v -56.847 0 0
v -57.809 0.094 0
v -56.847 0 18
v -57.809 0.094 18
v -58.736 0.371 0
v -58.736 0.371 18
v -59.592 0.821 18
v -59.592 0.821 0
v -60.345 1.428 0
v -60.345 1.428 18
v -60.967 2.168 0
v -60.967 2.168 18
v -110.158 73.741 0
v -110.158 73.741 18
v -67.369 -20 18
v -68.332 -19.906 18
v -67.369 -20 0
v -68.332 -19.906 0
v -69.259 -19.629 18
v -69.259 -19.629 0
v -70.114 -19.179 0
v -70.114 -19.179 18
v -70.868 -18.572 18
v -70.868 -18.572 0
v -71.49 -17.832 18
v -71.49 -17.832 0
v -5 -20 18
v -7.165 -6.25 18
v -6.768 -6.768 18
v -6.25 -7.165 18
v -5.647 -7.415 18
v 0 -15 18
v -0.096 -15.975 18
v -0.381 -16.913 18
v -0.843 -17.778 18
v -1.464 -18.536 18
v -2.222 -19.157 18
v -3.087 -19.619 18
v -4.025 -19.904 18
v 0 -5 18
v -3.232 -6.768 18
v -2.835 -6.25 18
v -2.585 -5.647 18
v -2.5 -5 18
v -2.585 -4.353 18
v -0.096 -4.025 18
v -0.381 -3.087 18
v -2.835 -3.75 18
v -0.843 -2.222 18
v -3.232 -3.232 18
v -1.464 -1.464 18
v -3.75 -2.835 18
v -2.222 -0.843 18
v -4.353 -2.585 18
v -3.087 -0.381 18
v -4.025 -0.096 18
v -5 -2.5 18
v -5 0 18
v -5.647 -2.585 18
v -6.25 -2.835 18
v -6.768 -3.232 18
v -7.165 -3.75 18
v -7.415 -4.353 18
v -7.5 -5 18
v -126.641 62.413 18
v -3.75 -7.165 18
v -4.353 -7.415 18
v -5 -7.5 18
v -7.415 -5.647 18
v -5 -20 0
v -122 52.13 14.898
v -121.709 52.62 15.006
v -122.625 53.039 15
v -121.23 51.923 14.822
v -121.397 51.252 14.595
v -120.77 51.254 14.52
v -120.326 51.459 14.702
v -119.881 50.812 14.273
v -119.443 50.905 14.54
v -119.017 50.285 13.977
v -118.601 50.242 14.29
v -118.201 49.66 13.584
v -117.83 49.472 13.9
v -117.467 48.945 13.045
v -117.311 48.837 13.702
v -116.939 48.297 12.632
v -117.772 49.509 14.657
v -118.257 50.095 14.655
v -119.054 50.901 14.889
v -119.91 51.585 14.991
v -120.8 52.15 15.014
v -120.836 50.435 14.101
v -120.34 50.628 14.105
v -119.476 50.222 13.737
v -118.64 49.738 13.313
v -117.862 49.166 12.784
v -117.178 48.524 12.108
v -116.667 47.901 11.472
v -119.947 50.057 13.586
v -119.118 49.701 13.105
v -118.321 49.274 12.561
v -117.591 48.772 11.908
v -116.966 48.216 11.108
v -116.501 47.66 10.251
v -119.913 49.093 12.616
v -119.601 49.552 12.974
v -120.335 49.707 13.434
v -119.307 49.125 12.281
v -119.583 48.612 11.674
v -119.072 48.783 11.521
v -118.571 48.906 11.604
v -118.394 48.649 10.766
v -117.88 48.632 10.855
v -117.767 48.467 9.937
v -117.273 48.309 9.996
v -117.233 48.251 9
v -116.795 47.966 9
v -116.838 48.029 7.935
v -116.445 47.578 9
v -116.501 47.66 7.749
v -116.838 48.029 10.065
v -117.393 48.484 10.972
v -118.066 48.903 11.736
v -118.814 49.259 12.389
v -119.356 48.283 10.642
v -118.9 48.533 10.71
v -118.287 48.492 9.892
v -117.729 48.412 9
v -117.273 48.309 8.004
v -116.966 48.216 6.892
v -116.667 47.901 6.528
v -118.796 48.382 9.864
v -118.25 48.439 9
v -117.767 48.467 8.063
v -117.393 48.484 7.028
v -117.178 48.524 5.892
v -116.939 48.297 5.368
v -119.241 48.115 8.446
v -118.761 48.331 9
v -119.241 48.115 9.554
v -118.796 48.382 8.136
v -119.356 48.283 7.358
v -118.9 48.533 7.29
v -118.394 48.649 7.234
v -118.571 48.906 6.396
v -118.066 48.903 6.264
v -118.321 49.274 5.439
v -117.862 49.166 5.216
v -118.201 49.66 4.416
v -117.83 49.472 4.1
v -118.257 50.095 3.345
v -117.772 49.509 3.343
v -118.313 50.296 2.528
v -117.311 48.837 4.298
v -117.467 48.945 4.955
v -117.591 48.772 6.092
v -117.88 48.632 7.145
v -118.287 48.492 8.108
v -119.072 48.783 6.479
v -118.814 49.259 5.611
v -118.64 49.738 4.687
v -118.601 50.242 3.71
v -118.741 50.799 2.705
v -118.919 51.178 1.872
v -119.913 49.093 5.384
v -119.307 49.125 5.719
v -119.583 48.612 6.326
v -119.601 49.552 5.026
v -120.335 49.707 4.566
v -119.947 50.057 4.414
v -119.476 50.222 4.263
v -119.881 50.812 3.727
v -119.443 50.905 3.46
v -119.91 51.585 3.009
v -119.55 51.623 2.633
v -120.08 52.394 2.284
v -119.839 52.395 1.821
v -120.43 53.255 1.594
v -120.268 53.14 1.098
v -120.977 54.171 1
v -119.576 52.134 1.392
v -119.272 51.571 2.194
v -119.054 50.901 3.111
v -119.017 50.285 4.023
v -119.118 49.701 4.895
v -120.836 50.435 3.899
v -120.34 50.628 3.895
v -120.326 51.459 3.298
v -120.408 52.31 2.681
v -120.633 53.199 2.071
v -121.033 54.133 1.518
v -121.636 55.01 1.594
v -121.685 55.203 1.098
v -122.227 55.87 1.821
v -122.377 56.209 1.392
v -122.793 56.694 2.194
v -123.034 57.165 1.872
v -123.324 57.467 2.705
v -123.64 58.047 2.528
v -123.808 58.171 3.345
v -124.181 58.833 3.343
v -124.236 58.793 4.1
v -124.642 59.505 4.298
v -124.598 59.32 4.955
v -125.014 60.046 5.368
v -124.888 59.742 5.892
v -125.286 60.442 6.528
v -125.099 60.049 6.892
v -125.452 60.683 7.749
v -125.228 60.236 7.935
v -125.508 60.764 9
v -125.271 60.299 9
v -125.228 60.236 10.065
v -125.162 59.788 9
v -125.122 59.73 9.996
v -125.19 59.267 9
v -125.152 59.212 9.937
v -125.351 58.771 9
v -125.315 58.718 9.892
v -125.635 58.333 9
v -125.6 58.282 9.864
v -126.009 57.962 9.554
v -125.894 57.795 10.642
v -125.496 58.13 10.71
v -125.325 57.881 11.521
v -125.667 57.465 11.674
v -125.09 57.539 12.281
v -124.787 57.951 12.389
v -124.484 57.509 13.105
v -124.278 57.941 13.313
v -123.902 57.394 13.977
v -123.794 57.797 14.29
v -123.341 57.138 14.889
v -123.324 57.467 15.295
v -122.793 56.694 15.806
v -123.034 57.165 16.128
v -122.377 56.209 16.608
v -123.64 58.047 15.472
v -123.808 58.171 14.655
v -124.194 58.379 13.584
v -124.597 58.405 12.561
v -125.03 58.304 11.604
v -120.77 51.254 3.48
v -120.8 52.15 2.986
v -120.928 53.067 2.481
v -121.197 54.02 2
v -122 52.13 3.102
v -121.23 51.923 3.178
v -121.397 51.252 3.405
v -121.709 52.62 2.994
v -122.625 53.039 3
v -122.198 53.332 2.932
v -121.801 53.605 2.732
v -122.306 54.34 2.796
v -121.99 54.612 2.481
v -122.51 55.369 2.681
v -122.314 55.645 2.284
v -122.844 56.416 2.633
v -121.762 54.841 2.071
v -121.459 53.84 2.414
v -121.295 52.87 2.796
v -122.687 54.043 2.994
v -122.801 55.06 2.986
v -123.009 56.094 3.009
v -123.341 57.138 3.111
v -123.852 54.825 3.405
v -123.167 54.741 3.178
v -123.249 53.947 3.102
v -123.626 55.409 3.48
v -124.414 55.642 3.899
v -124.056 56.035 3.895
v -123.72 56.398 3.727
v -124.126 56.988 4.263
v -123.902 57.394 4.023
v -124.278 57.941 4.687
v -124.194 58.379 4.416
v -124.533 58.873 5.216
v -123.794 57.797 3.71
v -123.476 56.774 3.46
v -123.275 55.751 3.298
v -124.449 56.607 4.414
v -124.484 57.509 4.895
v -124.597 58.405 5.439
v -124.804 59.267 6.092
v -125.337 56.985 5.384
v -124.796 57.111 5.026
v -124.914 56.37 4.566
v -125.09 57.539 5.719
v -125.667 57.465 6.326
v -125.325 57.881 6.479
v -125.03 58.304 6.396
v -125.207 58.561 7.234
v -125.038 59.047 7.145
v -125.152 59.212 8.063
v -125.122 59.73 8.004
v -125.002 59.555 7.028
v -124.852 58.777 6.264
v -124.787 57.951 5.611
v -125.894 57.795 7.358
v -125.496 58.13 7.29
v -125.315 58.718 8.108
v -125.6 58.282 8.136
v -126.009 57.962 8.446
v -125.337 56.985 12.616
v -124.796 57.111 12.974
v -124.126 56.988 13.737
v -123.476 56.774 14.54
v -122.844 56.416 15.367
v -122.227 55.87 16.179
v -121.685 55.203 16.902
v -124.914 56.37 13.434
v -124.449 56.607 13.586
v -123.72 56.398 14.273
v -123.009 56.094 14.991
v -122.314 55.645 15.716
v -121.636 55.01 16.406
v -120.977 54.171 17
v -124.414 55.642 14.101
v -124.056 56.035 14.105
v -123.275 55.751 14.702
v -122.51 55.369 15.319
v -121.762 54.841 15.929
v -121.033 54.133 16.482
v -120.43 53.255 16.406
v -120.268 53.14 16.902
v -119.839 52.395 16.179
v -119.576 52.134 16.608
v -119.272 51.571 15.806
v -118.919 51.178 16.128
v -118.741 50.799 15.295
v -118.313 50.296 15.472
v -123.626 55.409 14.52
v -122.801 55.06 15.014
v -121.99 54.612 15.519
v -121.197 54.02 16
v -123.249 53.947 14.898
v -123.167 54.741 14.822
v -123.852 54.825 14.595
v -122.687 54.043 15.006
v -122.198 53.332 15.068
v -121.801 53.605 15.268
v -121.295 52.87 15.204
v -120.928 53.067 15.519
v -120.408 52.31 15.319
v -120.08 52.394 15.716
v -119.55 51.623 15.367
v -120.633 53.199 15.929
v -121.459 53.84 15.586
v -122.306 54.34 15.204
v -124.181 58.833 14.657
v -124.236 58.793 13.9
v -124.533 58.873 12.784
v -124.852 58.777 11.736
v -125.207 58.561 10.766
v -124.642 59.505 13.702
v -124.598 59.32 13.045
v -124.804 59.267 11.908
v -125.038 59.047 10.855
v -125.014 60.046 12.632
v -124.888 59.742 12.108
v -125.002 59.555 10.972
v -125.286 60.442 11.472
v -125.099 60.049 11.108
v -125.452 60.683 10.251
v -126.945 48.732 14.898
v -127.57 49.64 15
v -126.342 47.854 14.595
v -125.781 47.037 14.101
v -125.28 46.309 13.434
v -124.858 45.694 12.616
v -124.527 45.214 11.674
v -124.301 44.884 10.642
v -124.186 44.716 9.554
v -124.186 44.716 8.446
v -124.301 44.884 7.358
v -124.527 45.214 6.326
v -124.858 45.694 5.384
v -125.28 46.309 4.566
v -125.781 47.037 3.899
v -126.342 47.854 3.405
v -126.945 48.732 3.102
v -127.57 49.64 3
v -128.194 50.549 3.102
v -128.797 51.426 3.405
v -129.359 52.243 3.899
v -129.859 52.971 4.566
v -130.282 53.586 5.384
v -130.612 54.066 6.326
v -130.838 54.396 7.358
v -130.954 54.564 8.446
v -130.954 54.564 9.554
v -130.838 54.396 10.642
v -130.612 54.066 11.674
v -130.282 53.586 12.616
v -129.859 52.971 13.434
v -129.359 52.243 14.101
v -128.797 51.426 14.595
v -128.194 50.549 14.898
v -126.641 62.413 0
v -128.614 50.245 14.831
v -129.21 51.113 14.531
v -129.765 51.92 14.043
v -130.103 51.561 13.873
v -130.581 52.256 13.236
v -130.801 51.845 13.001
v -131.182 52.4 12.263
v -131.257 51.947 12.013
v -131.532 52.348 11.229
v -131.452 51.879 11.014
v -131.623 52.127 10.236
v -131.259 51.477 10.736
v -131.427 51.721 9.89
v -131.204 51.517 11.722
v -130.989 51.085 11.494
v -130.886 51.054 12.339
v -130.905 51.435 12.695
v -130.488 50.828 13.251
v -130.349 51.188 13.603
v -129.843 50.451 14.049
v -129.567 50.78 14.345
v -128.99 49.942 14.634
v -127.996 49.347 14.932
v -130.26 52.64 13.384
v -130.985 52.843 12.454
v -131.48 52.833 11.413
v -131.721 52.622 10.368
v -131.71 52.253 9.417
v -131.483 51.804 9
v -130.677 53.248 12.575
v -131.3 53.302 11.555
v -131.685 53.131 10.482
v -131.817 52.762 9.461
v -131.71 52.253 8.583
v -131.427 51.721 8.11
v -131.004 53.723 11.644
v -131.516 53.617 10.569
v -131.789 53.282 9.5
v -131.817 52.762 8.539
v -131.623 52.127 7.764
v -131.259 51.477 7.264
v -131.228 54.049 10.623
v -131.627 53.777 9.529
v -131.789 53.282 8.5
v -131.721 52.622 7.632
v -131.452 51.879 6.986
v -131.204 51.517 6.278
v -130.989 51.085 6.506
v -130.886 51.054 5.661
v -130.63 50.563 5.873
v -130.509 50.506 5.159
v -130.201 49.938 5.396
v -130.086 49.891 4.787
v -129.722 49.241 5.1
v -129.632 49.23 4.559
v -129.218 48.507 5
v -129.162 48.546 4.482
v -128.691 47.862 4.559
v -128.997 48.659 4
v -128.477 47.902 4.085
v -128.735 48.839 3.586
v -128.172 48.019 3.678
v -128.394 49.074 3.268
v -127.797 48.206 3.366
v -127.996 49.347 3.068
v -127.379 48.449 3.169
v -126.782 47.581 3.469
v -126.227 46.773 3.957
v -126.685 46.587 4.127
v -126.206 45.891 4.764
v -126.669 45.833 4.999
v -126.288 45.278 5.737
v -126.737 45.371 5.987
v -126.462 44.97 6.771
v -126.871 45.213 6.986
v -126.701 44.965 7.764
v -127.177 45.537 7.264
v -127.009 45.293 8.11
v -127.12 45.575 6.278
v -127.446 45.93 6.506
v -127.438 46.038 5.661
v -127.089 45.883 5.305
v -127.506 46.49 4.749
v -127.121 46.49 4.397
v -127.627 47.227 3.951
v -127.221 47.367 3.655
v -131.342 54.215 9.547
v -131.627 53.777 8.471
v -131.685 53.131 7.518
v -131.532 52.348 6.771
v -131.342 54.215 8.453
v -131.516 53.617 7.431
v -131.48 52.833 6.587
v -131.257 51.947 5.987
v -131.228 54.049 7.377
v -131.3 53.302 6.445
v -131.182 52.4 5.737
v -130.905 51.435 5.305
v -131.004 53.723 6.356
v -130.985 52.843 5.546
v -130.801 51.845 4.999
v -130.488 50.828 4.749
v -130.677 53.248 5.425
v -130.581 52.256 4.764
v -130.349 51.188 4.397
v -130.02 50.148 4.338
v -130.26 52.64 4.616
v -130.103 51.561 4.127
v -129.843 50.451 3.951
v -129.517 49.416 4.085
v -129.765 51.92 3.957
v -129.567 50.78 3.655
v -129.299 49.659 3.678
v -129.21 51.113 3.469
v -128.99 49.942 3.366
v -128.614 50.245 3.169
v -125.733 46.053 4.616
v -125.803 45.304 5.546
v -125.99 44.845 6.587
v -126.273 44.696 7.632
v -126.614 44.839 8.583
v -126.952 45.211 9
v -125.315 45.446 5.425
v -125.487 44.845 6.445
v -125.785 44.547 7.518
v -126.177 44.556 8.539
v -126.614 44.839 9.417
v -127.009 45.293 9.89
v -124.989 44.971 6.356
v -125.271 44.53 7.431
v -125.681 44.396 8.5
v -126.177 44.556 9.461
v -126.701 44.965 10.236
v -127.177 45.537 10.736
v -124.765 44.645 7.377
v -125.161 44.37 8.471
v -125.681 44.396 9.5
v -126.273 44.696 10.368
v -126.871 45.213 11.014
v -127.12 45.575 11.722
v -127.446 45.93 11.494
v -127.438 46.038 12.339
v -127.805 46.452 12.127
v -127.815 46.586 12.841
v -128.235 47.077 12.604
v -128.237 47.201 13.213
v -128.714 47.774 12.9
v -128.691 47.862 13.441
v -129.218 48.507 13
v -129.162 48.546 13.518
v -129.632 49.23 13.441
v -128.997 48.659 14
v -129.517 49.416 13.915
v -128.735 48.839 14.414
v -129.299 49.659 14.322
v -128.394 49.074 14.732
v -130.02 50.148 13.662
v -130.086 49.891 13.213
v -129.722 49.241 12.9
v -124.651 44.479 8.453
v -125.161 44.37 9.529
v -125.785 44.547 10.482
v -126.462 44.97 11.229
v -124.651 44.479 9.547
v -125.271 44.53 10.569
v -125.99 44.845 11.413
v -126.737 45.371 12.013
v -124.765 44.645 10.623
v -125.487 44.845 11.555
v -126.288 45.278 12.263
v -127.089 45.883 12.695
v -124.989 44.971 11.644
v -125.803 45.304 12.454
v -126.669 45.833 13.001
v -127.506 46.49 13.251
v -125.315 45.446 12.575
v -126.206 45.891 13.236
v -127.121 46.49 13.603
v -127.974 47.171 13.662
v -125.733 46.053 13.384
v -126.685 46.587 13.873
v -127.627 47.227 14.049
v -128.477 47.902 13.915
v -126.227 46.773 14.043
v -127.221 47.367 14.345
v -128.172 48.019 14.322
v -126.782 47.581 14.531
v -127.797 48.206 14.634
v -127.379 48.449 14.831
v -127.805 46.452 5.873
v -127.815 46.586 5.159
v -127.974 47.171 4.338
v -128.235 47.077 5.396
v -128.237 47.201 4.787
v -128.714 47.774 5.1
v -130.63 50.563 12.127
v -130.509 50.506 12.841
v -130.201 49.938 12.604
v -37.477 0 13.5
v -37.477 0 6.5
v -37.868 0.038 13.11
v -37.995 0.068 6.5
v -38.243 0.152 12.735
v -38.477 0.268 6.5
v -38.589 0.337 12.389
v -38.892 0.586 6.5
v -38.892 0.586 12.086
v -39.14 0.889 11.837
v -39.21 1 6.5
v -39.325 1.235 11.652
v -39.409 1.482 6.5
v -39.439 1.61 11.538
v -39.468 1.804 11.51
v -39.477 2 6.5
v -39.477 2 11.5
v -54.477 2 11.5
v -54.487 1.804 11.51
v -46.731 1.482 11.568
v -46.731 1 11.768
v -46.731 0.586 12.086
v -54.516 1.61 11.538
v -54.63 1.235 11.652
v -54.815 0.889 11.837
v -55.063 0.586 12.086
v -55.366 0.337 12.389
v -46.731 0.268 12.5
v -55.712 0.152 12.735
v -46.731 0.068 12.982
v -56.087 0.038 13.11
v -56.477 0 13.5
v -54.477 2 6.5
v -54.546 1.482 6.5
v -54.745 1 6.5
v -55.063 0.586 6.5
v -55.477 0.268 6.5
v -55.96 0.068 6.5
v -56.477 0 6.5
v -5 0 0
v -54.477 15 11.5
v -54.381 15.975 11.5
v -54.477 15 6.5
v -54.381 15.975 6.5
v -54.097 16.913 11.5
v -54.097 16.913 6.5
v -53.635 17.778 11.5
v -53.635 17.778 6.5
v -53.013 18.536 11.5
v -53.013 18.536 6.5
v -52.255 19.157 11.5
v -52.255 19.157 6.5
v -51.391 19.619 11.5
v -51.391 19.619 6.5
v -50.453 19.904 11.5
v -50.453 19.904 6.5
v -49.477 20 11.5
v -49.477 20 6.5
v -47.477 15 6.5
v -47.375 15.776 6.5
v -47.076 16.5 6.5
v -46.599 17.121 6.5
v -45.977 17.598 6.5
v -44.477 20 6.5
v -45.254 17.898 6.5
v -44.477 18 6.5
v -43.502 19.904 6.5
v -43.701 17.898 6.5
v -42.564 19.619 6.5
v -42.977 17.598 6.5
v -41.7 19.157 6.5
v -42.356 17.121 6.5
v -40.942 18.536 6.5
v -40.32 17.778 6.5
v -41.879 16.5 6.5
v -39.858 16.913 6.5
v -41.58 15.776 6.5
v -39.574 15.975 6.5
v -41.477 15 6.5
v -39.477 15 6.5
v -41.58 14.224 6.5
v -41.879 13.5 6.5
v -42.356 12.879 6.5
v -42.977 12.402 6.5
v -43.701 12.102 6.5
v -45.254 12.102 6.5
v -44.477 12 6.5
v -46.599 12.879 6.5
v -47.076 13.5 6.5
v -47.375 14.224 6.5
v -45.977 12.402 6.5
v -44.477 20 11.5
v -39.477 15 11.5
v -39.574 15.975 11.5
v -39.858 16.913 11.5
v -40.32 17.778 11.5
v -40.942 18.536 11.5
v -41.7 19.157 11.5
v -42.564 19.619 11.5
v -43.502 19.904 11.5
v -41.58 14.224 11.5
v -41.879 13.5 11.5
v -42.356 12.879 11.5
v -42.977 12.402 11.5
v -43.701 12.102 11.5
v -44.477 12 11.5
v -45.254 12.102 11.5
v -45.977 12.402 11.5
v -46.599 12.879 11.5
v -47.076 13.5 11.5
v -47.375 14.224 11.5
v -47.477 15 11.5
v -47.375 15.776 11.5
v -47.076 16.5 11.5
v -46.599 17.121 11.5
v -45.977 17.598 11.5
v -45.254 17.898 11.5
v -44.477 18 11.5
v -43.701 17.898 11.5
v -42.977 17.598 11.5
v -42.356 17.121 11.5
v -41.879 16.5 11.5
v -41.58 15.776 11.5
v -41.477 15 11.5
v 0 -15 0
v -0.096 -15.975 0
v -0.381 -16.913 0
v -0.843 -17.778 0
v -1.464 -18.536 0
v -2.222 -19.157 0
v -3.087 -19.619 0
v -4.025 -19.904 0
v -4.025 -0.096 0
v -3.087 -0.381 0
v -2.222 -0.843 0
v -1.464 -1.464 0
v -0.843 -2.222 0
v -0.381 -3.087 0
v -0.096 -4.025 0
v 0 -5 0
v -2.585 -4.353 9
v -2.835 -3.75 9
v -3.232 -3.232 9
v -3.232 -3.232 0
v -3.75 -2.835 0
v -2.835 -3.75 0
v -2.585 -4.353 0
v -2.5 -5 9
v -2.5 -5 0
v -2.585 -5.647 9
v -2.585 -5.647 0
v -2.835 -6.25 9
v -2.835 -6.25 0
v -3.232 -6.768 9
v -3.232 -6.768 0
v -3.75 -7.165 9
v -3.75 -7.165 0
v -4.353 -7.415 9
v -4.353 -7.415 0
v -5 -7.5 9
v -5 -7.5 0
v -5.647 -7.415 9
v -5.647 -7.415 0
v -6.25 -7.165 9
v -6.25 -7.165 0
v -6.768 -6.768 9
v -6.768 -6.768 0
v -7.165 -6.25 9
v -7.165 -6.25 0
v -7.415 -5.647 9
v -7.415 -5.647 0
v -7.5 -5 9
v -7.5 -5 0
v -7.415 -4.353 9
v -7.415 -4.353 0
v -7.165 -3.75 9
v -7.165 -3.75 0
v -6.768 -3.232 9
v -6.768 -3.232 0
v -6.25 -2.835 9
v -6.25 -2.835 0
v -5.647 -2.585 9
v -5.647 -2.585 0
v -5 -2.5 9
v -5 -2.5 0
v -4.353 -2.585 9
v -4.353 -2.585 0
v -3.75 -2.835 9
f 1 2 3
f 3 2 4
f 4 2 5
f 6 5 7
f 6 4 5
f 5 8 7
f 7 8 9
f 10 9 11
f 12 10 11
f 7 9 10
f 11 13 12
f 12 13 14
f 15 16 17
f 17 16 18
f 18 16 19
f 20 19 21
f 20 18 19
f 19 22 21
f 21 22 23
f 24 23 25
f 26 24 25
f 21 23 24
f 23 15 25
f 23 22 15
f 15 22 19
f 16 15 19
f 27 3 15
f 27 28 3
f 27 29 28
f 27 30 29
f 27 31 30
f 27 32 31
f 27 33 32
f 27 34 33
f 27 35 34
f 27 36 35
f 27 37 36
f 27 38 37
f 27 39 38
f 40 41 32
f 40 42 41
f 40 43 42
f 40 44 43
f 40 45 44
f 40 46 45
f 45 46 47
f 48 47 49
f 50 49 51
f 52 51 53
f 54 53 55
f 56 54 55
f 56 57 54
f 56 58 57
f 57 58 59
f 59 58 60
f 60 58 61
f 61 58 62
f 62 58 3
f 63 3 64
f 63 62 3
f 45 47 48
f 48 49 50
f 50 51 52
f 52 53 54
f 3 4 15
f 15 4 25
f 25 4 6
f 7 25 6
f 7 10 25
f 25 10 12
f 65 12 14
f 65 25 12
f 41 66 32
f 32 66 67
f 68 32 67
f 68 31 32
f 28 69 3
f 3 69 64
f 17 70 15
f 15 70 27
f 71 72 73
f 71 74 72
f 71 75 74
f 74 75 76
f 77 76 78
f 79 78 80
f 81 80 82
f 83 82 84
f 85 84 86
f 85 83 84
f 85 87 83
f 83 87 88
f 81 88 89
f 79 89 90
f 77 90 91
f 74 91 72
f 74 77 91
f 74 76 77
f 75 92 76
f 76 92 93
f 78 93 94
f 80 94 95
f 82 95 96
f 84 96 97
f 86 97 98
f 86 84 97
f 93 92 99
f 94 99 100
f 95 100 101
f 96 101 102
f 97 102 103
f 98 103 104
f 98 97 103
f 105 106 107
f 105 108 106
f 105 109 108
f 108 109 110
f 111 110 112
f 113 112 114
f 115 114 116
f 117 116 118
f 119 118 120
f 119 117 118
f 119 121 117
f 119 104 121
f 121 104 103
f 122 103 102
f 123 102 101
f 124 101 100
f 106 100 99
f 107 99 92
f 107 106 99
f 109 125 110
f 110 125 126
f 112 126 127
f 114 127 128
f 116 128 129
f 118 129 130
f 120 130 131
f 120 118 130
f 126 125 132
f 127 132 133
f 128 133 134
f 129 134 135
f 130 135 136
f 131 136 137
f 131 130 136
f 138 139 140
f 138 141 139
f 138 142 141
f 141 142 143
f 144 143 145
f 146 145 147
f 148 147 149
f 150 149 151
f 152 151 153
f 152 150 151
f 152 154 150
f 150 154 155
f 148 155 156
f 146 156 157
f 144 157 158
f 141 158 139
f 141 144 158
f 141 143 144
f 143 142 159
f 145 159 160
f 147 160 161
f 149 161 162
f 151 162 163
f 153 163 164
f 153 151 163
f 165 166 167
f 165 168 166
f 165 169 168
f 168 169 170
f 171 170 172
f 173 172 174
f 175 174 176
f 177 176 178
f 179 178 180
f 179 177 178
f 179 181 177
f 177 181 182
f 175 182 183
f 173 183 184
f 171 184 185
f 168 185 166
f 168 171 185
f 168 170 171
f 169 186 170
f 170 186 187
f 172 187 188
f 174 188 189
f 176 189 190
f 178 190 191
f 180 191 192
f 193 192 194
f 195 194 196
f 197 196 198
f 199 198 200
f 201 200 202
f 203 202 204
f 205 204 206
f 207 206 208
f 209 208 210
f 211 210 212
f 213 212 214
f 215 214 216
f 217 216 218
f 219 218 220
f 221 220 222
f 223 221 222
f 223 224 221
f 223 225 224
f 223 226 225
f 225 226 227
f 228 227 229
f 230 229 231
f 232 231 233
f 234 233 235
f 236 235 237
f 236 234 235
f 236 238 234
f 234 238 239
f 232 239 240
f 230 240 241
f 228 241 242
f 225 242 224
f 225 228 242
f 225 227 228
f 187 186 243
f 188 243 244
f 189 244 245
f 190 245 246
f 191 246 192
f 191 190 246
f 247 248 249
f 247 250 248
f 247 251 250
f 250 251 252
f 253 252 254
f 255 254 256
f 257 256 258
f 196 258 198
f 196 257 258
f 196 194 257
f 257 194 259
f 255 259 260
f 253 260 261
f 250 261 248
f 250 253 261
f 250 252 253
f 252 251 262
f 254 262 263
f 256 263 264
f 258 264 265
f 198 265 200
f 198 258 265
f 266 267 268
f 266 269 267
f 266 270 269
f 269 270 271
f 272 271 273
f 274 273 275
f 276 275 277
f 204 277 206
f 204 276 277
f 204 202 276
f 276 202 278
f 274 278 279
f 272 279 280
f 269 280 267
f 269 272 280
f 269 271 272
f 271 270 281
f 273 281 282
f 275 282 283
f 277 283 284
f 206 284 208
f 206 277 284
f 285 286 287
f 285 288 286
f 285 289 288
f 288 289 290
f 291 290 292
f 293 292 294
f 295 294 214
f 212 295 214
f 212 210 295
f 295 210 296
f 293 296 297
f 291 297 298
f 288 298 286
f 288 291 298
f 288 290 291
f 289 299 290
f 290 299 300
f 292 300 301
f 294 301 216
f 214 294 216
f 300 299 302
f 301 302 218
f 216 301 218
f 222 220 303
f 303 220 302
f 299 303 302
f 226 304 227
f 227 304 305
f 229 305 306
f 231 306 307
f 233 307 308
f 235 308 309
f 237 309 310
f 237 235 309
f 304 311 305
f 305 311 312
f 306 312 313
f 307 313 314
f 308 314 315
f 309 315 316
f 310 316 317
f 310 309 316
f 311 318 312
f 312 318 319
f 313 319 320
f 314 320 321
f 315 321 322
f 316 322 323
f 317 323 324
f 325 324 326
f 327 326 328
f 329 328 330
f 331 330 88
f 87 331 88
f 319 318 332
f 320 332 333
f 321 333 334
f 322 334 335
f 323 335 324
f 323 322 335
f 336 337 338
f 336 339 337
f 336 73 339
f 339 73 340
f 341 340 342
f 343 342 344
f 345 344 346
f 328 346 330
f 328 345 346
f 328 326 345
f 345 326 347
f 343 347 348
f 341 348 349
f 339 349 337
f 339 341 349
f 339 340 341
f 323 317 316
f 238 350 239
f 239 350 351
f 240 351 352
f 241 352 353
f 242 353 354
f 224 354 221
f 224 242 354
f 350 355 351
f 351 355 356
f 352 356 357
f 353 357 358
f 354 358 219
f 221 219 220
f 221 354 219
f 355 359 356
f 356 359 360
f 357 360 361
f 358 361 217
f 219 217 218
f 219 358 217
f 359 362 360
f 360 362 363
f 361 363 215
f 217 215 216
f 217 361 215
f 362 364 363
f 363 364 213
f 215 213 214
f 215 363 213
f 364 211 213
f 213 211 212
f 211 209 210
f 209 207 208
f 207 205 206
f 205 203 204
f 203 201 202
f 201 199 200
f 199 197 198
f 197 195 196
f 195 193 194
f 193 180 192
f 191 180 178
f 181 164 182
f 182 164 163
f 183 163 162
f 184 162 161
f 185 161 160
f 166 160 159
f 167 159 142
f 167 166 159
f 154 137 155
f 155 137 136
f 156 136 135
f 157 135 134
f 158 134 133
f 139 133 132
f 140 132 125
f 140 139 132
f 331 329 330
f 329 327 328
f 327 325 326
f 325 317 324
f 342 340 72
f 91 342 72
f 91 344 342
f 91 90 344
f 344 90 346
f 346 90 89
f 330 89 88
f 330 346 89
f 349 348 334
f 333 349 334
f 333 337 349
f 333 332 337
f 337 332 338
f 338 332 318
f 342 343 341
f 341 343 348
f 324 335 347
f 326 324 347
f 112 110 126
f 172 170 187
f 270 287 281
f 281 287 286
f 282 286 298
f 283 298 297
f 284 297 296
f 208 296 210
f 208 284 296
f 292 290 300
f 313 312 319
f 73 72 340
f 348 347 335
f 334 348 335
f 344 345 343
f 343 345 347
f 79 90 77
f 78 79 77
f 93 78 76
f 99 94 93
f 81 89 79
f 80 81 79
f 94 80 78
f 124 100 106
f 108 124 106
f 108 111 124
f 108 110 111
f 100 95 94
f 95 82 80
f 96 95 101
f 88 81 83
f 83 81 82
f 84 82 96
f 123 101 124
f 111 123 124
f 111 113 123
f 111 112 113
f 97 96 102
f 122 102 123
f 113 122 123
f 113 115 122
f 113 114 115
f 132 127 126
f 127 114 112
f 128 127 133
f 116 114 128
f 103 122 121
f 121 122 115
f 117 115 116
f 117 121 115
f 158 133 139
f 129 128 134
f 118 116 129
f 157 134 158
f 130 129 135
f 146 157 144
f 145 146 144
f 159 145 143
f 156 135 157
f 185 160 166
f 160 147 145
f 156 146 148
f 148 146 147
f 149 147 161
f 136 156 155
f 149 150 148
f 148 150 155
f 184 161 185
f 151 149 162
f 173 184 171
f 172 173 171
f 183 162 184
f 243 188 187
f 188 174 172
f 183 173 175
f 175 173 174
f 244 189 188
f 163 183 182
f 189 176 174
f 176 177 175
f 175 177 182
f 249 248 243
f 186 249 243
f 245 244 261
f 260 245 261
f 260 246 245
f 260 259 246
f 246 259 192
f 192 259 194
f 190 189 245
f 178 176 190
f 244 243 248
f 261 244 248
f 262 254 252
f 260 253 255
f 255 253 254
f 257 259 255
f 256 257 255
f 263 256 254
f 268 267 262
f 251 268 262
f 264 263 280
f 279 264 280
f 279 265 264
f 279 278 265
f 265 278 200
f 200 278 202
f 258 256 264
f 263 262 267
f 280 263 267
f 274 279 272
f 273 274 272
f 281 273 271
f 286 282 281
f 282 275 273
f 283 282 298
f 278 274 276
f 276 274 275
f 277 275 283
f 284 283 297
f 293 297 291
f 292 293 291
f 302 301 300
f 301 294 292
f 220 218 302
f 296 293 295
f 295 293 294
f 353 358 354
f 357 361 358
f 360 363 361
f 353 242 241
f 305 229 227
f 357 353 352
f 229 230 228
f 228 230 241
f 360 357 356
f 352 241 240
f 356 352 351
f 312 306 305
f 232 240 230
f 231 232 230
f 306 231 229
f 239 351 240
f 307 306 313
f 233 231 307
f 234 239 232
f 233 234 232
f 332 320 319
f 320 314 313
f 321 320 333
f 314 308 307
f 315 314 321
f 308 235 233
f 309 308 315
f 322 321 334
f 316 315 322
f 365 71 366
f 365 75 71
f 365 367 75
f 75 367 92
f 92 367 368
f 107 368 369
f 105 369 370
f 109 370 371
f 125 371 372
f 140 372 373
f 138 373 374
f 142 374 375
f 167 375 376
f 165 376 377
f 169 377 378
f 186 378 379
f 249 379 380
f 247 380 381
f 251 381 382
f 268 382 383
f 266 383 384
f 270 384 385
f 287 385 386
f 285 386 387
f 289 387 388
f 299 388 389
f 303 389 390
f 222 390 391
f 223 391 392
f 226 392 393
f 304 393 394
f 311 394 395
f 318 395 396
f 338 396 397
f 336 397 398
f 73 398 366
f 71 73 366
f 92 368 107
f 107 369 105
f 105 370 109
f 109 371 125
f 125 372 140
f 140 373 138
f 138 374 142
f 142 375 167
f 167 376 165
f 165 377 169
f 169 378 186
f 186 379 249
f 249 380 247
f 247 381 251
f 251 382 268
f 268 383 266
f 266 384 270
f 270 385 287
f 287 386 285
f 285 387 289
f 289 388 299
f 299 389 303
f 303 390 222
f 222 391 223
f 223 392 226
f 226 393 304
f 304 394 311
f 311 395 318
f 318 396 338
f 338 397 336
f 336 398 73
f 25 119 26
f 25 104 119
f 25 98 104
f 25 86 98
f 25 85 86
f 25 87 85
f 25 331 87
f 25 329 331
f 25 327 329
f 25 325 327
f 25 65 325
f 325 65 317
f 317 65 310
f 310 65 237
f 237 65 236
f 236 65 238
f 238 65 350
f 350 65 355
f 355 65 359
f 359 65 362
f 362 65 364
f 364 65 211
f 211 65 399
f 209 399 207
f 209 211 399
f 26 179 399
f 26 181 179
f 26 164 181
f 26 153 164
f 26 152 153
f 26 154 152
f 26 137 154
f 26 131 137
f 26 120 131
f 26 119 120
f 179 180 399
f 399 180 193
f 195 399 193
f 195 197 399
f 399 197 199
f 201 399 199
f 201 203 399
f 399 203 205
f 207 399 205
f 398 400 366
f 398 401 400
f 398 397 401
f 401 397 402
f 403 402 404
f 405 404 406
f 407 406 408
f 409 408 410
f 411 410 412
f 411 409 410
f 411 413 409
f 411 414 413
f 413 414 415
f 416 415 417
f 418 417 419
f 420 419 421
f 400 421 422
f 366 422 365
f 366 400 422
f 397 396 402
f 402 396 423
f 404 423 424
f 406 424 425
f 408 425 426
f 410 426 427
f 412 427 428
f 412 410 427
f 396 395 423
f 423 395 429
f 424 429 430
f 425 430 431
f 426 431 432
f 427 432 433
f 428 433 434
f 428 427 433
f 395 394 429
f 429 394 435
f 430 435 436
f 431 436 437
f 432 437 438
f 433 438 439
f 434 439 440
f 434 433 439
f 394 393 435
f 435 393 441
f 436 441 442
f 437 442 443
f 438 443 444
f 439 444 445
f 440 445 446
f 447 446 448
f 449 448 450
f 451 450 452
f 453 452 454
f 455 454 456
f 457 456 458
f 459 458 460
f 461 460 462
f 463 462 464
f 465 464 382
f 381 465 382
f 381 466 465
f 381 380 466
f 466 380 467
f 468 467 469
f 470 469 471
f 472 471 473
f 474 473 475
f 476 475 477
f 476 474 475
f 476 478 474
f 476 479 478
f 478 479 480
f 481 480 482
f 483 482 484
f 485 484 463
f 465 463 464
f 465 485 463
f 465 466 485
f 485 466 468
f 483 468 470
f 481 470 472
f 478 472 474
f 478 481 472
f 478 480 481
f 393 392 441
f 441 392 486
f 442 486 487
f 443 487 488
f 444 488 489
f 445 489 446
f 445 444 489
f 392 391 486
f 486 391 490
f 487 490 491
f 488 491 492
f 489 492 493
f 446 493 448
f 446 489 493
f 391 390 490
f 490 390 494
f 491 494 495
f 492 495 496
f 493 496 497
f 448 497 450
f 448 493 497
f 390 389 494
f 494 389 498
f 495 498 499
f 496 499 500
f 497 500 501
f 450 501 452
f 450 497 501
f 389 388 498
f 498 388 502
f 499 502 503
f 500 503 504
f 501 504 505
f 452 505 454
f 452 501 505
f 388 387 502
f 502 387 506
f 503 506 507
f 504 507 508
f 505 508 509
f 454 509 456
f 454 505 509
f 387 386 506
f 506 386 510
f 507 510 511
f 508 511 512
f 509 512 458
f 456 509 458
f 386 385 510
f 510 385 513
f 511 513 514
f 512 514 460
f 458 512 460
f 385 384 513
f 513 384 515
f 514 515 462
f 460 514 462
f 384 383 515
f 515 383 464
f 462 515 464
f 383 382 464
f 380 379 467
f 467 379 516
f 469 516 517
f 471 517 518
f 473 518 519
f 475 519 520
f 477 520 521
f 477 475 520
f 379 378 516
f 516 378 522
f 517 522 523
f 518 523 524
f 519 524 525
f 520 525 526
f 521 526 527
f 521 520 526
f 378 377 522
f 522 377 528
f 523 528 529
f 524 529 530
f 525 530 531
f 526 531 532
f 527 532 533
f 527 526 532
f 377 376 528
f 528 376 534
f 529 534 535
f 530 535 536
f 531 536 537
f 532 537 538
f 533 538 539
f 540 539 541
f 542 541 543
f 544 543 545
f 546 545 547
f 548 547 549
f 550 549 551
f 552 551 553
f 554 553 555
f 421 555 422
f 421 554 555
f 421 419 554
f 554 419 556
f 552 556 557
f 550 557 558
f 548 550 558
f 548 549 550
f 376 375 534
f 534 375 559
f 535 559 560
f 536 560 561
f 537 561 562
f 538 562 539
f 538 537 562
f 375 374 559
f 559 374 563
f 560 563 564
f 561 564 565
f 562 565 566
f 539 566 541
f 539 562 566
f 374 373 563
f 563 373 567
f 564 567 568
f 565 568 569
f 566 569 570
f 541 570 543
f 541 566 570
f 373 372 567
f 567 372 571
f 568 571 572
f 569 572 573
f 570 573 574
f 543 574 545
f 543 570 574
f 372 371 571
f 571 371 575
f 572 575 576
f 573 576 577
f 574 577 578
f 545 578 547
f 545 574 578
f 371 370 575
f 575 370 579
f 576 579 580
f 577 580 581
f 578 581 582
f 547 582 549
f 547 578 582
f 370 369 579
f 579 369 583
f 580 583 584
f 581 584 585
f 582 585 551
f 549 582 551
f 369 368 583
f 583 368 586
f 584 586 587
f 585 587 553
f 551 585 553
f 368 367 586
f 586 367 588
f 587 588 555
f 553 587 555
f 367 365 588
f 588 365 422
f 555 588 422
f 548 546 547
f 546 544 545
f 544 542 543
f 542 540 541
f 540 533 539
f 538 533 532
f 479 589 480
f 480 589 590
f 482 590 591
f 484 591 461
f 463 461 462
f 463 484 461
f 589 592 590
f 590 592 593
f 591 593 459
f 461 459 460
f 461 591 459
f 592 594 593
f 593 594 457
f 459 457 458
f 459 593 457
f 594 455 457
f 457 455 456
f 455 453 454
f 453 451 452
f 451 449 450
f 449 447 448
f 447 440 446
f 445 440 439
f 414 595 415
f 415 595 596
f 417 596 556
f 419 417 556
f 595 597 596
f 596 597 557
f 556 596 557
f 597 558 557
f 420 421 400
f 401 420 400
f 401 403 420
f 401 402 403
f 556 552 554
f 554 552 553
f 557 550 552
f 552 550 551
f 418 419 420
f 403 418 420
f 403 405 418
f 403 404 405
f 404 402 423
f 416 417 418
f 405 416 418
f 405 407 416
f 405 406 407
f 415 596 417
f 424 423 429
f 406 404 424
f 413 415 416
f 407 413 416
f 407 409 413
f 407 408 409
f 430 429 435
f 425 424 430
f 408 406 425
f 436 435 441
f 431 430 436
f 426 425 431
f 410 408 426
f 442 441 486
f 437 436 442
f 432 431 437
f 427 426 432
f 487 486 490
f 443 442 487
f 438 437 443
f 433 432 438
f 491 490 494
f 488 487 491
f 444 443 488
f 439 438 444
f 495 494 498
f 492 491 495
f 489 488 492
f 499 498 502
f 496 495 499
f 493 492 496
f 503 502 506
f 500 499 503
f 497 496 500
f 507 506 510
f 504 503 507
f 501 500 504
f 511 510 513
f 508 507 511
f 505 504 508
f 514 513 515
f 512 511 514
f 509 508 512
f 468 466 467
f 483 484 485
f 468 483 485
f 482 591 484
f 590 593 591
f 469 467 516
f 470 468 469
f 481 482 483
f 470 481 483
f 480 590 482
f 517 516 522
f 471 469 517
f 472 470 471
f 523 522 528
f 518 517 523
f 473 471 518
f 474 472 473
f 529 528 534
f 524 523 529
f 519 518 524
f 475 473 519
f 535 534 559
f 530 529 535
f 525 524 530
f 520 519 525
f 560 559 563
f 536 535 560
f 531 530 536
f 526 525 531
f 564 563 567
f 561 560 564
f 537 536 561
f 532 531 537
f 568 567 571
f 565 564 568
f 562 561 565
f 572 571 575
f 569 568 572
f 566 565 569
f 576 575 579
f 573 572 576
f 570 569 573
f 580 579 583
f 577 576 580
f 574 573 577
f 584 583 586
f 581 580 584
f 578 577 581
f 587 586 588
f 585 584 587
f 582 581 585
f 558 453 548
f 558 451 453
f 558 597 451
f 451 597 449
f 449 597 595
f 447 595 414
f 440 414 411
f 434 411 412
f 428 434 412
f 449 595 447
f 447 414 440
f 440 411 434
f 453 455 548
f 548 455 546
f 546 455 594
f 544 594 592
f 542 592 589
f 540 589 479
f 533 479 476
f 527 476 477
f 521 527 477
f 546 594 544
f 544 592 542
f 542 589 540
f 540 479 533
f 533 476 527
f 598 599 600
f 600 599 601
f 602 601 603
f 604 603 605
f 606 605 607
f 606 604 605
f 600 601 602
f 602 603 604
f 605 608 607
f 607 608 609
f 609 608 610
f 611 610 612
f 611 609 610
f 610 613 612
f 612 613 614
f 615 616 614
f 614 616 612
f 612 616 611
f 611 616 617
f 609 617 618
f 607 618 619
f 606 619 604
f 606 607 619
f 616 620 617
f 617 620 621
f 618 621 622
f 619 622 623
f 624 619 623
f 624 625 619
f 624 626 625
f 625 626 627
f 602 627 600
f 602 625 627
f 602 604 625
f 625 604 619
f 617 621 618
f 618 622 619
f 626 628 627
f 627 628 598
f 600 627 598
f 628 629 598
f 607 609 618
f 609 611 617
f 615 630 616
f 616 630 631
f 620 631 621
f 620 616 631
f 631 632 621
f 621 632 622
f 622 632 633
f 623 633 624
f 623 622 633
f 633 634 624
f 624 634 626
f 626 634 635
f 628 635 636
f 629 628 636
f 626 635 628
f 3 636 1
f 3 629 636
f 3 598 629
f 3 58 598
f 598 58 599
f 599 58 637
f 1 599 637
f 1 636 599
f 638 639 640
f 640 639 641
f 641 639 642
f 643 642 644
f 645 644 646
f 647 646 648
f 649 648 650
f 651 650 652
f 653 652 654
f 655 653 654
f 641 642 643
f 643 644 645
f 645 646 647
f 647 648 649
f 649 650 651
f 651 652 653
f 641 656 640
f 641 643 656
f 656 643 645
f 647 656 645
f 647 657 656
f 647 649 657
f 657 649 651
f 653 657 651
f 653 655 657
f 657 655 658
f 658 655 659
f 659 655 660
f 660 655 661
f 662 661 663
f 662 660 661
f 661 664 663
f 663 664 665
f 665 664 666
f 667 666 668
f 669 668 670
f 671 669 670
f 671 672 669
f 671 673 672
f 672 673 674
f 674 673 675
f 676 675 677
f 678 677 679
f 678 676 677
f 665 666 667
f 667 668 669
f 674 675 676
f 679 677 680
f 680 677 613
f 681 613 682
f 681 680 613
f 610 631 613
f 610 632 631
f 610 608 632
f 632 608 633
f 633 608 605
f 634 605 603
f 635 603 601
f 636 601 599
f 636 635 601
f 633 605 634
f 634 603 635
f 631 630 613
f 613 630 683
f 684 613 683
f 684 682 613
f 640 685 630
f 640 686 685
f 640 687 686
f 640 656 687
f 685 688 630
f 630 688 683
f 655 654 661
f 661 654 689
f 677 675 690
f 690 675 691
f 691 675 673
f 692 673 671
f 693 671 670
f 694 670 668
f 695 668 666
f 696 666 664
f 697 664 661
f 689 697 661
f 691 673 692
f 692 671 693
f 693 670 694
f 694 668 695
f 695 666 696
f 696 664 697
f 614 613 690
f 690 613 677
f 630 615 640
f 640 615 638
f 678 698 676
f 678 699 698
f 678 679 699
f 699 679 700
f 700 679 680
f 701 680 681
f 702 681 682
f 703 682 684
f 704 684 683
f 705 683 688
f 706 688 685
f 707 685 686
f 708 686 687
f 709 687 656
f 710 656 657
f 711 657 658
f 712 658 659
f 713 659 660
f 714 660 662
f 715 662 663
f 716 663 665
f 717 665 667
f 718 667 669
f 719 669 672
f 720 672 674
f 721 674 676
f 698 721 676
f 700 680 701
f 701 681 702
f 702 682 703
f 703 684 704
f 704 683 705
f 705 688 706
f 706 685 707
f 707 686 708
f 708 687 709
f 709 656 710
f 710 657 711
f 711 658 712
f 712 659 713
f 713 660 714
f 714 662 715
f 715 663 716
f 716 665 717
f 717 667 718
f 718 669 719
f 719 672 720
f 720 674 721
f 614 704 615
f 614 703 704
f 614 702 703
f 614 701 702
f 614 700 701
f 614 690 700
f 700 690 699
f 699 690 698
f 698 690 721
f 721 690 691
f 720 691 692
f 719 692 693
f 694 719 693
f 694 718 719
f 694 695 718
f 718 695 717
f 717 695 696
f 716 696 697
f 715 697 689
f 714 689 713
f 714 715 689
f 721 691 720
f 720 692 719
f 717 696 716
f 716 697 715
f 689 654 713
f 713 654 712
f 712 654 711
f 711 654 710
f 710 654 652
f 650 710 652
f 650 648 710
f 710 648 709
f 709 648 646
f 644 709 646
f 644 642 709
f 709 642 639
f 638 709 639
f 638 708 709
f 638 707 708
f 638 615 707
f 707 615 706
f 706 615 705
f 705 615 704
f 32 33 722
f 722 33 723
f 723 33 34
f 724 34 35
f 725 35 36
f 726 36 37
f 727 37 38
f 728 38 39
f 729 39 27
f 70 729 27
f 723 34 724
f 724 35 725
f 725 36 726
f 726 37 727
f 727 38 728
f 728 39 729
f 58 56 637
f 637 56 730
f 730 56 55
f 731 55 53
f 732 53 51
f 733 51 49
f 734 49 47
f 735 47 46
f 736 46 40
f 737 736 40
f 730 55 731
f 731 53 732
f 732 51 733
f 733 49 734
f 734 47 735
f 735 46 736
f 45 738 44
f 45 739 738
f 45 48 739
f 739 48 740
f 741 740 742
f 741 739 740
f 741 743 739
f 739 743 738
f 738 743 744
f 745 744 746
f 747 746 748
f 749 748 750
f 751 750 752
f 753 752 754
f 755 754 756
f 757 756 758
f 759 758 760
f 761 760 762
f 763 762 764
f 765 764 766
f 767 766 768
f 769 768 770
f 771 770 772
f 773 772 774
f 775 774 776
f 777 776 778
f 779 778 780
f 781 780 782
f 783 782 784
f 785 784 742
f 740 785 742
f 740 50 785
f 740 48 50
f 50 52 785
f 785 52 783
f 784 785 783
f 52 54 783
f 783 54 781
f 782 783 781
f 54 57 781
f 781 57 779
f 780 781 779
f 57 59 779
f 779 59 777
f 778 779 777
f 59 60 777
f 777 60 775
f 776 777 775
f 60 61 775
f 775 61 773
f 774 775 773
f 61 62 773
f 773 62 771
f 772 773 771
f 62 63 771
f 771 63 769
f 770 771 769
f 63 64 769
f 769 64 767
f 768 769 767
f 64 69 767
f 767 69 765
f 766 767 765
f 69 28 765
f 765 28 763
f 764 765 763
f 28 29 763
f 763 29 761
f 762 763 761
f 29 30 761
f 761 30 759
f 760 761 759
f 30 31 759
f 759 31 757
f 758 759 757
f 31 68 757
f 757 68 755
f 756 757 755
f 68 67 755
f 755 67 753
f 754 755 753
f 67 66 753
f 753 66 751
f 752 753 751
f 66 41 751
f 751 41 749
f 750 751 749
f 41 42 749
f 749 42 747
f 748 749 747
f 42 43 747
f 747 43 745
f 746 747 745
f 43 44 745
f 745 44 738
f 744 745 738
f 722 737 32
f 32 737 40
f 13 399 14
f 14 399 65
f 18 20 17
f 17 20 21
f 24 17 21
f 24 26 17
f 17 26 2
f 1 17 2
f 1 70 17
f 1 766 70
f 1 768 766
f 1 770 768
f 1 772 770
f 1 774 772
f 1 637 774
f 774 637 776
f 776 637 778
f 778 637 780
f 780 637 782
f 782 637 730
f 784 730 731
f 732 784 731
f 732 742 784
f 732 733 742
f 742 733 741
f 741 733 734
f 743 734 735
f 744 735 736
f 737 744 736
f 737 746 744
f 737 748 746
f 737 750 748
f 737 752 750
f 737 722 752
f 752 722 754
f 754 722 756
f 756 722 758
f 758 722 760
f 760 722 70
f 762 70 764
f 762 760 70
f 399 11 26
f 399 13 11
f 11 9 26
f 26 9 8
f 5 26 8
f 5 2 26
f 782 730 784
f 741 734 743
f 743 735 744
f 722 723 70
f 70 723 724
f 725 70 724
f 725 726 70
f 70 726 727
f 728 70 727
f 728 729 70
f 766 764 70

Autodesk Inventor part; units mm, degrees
ref_plane "YZ Plane" through (0, 0, 0) normal (1, 0, 0) x (0, 1, 0)
ref_plane "XZ Plane" through (0, 0, 0) normal (0, 1, 0) x (-1, 0, 0)
ref_plane "XY Plane" through (0, 0, 0) normal (0, 0, 1) x (1, 0, 0)
sketch "Sketch1" plane through (0, 0, 0) normal (0, 0, 1) x (1, 0, 0)
  line L0 (0, 0) -> (-59.4775, 0)
  line L1 (0, 0) -> (0, -20)
  line L2 (0, -20) -> (-70, -20)
  circle A0 centre (-5, -5) radius 2.5
  line L3 (-59.4775, 0) -> (-110.1581, 73.7407)
  line L4 (-110.1581, 73.7407) -> (-126.6406, 62.4126)
  line L5 (-126.6406, 62.4126) -> (-70, -20)
  line L6 (-5, -5) -> (93.9651, 63.0168)
  line L7 (-5, -5) -> (-119.3081, 161.3193)
  dimension "d1" = 5
  dimension "d2" = 20
  dimension "d3" = 5
  dimension "d4" = 5
  dimension "d50" = 70
  dimension "d51" = 124.5
  dimension "d52" = 20
  dimension "d53" = 100
  dimension "d55" = 34.5
extrude "Extrusion1" add sketch "Sketch1" along normal blind 18 contours L1 L6 A0 L7 L0 | L7 A0 L6 L1 L2 L5 L4 L3 L0
fillet "Fillet5" radius 5 2 edges at (0, 0, 9) (0, -20, 9)
sketch "Sketch5" plane through (-70, 0, 0) normal (0, 1, 0) x (1, 0, 0)
  line L0 (15.5225, 0) -> (30.5225, 0)
  line L1 (30.5225, 0) -> (30.5225, -11.5)
  line L2 (30.5225, -11.5) -> (15.5225, -11.5)
  line L3 (15.5225, -11.5) -> (15.5225, 0)
  line L4 (65, -18) -> (10.5225, -18) projected
  line L5 (0, 0) -> (0, -18) projected
  line L6 (65, 0) -> (10.5225, 0) projected
  line L7 (10.5225, 0) -> (10.5225, -18) projected
  point P0 (70, 0)
  point P1 (0, -3.5)
  dimension "d31" = 15
  dimension "d33" = 6.5
  dimension "d54" = 20
extrude "Extrusion5" add sketch "Sketch5" along normal blind 20
sketch "Sketch6" plane through (-39.4775, 0, 11.5) normal (0, 0, 1) x (1, 0, 0)
  circle A0 centre (-5, 15) radius 3
  line L0 (-15, 20) -> (0, 20) projected
  line L1 (0, 0) -> (0, 20) projected
  point P0 (39.4775, 0)
  dimension "d37" = 6
  dimension "d38" = 5
  dimension "d39" = 5
extrude "Extrusion6" cut sketch "Sketch6" against normal up to next
sketch "Sketch7" plane through (-54.4775, 0, 0) normal (-1, 0, 0) x (0, 0, 1)
  line L0 (0, 20) -> (6.5, 20)
  line L1 (0, 0) -> (0, 20)
  line L2 (6.5, 20) -> (6.5, 0)
  line L3 (6.5, 0) -> (0, 0)
  line L4 (0, 0) -> (0, 20) projected
  line L5 (11.5, 0) -> (11.5, 20) projected
  line L6 (0, 20) -> (11.5, 20) projected
  dimension "d42" = 5
  dimension "d44" = 20
extrude "Extrusion7" cut sketch "Sketch7" against normal up to next
fillet "Fillet8" radius 5 2 edges at (-39.4775, 20, 9) (-54.4775, 20, 9)
fillet "Fillet9" radius 2 3 edges at (-54.4775, 0, 9) (-46.9775, 0, 11.5) (-39.4775, 0, 9)
sketch "Sketch8" plane through (-70, -20, 0) normal (-0.8241, -0.5664, 0) x (0, 0, 1)
  circle A0 centre (9, 90) radius 6
  line L0 (0, 100) -> (18, 100) projected
  line L1 (18, 100) -> (18, 0) projected
  point P0 (0, -23.1659)
  dimension "d56" = 12
  dimension "d57" = 10
  dimension "d58" = 9
extrude "Extrusion8" add sketch "Sketch8" along normal blind 10
fillet "Fillet11" radius 2 2 edges at (-129.2178, 48.5073, 3) (-120.9766, 54.1714, 3)
fillet "Fillet12" radius 5 2 edges at (-70, -20, 9) (-59.4775, 0, 9)
properties part number "Swinging_connection" material "Wood (Cherry)"
